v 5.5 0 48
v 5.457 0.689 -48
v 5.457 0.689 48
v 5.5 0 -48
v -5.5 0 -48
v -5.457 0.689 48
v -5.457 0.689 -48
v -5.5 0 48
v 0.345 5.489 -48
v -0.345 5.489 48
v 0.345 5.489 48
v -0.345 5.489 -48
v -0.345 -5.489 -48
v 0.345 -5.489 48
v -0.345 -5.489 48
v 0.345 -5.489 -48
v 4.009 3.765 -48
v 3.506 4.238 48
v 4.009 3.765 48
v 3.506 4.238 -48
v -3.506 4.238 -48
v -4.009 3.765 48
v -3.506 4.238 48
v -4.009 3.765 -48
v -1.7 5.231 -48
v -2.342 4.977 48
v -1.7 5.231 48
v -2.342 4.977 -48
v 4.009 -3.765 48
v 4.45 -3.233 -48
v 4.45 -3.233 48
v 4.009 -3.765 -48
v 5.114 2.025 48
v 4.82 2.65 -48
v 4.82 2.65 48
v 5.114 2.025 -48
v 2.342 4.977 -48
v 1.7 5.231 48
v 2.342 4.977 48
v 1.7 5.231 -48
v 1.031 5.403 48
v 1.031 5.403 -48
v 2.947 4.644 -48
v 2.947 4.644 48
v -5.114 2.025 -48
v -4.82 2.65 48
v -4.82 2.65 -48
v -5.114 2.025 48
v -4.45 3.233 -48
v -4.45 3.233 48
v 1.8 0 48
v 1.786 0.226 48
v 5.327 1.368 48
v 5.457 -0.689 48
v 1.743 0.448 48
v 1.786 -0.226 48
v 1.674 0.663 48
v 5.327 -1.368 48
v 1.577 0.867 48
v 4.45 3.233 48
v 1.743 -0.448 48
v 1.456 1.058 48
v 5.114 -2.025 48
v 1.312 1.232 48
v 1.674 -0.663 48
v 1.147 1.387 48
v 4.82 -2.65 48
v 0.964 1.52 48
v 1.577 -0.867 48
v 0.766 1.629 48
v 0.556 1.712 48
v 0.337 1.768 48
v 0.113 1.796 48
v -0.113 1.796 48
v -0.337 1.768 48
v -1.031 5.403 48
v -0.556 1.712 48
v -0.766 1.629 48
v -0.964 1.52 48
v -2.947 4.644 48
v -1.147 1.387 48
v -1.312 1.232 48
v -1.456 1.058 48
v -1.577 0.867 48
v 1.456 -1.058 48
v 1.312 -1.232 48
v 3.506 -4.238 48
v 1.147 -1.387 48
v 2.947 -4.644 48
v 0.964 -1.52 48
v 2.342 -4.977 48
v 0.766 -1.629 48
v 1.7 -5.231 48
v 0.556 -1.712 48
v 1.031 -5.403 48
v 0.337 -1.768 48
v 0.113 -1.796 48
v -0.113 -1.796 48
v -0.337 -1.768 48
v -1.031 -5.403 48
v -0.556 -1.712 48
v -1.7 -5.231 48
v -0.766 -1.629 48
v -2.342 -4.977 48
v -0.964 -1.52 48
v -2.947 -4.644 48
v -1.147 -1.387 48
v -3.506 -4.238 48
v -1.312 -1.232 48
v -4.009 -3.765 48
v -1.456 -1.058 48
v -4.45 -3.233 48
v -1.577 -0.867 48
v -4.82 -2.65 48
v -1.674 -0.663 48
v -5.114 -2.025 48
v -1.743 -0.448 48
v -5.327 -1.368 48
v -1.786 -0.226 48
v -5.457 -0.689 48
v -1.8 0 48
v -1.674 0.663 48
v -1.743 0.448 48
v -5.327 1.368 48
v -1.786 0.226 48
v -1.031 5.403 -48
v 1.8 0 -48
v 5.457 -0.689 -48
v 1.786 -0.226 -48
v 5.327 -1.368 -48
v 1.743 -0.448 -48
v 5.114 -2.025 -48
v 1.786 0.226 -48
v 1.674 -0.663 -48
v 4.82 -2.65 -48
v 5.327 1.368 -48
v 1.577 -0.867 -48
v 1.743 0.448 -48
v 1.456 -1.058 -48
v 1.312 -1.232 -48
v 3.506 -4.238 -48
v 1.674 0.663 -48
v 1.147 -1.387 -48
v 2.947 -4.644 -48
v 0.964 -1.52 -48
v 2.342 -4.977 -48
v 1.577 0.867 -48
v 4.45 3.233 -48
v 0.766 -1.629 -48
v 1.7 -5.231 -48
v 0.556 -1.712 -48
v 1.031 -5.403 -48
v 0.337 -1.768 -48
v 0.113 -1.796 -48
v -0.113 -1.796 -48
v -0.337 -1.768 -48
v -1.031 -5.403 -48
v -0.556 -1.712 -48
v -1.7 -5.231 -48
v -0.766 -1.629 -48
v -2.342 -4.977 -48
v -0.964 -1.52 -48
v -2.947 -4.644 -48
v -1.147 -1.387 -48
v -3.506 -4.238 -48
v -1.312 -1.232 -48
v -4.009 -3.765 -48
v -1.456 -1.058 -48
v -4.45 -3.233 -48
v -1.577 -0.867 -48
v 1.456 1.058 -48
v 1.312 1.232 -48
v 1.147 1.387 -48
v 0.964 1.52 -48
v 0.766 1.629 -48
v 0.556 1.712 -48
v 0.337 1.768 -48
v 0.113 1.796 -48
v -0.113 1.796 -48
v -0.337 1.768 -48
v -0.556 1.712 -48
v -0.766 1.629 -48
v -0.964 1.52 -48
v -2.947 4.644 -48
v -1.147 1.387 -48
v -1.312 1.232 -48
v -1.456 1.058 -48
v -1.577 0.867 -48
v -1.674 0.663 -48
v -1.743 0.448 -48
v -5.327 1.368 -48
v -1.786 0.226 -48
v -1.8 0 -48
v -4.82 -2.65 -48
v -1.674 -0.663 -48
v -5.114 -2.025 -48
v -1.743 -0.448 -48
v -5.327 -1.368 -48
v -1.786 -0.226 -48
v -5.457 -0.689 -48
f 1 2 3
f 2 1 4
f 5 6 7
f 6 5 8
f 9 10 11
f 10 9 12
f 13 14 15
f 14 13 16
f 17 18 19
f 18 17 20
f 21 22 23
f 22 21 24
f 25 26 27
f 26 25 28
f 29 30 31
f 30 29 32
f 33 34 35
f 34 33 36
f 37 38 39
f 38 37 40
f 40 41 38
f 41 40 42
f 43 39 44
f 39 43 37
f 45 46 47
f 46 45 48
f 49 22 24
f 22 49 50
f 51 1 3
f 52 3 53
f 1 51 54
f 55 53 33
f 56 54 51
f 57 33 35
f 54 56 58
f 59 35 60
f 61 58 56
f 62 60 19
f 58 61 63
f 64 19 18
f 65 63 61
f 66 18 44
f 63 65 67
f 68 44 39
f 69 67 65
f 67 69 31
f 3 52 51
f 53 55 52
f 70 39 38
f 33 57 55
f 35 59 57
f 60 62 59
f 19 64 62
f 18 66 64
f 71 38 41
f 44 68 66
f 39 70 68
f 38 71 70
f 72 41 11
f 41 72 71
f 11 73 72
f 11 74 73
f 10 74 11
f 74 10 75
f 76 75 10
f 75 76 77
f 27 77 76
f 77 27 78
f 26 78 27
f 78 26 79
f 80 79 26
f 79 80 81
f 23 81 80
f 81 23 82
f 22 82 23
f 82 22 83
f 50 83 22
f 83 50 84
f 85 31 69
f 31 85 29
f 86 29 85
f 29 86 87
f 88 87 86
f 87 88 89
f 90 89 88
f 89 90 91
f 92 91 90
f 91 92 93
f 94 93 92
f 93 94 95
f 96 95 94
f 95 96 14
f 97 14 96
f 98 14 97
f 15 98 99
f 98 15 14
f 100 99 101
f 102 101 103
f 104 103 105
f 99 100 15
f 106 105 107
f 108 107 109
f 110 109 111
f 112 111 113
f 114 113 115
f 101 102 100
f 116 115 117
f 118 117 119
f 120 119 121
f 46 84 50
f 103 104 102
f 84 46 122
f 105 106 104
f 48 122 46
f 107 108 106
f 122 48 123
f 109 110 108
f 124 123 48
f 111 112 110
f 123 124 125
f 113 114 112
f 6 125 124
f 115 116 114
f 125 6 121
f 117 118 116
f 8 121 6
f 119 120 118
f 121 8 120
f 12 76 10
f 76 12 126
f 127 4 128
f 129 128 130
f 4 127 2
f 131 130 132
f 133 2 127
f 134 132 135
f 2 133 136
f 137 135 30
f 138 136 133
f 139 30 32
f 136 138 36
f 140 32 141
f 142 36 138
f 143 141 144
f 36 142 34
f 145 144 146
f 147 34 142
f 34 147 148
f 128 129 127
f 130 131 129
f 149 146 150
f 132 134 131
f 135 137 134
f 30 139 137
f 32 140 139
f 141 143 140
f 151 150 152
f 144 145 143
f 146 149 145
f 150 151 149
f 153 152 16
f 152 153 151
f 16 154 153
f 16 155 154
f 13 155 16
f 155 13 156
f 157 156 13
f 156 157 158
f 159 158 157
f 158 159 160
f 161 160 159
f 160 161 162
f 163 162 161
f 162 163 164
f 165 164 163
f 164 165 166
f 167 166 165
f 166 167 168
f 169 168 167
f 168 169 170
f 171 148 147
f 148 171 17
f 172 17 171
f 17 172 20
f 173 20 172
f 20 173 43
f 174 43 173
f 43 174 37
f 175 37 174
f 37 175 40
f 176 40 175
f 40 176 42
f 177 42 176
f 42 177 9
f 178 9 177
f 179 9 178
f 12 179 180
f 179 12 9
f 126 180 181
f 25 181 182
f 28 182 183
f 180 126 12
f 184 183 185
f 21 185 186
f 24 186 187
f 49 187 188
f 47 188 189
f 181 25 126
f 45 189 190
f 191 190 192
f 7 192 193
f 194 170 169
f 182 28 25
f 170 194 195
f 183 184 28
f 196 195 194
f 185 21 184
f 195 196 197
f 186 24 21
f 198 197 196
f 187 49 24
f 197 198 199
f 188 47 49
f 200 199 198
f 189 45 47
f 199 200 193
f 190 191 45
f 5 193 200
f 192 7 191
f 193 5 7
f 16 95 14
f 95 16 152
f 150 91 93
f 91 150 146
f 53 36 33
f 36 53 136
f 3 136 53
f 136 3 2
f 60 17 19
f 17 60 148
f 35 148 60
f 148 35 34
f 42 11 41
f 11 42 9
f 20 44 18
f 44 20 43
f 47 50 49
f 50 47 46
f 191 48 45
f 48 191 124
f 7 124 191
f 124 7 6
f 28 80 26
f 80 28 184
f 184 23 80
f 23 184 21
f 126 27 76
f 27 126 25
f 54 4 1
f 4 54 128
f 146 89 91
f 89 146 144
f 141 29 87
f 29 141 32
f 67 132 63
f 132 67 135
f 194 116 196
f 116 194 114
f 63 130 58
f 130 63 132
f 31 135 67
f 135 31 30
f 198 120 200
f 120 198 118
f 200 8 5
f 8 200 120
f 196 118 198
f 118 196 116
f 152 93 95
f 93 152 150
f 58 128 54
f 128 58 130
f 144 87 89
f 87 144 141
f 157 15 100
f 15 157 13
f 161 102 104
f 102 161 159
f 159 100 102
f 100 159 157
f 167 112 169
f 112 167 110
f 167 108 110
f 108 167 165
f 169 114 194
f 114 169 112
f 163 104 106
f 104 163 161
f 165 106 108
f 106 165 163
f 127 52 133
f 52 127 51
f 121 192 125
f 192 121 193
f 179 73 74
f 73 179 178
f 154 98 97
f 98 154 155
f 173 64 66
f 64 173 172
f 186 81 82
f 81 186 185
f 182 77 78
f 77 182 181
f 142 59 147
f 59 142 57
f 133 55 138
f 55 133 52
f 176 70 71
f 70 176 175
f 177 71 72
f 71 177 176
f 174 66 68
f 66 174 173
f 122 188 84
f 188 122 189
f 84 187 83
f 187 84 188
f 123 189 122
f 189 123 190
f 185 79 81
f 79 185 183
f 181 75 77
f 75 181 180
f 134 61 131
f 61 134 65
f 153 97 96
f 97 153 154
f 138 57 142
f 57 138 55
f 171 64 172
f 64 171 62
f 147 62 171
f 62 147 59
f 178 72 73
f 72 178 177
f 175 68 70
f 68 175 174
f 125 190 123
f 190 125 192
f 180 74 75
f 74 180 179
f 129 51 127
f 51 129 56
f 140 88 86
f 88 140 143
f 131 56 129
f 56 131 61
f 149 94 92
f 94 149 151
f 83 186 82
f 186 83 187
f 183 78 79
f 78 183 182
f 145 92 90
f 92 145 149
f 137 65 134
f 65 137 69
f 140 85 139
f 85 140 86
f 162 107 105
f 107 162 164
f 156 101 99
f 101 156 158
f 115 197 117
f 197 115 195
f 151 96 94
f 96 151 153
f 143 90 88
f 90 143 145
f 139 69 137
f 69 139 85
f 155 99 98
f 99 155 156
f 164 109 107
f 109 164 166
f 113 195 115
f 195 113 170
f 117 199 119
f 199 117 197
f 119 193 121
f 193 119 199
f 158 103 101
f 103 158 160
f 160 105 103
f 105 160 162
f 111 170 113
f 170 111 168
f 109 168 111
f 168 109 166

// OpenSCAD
$fn = 50;


difference() {
	union() {
		translate(v = [0, 0, -48.0000000000]) {
			cylinder(h = 96, r = 5.5000000000);
		}
	}
	union() {
		#translate(v = [0, 0, -100.0000000000]) {
			cylinder(h = 200, r = 1.8000000000);
		}
	}
}
